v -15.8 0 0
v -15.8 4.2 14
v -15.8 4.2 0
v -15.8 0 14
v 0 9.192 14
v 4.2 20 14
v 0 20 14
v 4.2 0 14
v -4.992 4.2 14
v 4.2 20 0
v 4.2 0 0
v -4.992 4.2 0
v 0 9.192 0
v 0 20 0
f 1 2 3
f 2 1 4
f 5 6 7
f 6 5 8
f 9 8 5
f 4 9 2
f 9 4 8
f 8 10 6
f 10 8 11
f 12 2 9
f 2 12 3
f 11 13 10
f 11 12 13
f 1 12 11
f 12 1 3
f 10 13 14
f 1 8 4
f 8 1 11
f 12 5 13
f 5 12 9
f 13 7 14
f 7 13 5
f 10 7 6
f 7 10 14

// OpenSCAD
union() {
    largura = 14; //mm
    altura = 32; //mm
    comprimento = 20; //mm
    espessura = 4.2; //mm
    
    color("green")
    translate([-(comprimento-espessura), 0, 0])
    cube([comprimento, espessura, largura]);

    color("blue")
    rotate(45)
    translate([-1.5, 1.5, 0])
    cube([8, 5, largura]);
    
    cube([espessura, comprimento, largura]);
}
